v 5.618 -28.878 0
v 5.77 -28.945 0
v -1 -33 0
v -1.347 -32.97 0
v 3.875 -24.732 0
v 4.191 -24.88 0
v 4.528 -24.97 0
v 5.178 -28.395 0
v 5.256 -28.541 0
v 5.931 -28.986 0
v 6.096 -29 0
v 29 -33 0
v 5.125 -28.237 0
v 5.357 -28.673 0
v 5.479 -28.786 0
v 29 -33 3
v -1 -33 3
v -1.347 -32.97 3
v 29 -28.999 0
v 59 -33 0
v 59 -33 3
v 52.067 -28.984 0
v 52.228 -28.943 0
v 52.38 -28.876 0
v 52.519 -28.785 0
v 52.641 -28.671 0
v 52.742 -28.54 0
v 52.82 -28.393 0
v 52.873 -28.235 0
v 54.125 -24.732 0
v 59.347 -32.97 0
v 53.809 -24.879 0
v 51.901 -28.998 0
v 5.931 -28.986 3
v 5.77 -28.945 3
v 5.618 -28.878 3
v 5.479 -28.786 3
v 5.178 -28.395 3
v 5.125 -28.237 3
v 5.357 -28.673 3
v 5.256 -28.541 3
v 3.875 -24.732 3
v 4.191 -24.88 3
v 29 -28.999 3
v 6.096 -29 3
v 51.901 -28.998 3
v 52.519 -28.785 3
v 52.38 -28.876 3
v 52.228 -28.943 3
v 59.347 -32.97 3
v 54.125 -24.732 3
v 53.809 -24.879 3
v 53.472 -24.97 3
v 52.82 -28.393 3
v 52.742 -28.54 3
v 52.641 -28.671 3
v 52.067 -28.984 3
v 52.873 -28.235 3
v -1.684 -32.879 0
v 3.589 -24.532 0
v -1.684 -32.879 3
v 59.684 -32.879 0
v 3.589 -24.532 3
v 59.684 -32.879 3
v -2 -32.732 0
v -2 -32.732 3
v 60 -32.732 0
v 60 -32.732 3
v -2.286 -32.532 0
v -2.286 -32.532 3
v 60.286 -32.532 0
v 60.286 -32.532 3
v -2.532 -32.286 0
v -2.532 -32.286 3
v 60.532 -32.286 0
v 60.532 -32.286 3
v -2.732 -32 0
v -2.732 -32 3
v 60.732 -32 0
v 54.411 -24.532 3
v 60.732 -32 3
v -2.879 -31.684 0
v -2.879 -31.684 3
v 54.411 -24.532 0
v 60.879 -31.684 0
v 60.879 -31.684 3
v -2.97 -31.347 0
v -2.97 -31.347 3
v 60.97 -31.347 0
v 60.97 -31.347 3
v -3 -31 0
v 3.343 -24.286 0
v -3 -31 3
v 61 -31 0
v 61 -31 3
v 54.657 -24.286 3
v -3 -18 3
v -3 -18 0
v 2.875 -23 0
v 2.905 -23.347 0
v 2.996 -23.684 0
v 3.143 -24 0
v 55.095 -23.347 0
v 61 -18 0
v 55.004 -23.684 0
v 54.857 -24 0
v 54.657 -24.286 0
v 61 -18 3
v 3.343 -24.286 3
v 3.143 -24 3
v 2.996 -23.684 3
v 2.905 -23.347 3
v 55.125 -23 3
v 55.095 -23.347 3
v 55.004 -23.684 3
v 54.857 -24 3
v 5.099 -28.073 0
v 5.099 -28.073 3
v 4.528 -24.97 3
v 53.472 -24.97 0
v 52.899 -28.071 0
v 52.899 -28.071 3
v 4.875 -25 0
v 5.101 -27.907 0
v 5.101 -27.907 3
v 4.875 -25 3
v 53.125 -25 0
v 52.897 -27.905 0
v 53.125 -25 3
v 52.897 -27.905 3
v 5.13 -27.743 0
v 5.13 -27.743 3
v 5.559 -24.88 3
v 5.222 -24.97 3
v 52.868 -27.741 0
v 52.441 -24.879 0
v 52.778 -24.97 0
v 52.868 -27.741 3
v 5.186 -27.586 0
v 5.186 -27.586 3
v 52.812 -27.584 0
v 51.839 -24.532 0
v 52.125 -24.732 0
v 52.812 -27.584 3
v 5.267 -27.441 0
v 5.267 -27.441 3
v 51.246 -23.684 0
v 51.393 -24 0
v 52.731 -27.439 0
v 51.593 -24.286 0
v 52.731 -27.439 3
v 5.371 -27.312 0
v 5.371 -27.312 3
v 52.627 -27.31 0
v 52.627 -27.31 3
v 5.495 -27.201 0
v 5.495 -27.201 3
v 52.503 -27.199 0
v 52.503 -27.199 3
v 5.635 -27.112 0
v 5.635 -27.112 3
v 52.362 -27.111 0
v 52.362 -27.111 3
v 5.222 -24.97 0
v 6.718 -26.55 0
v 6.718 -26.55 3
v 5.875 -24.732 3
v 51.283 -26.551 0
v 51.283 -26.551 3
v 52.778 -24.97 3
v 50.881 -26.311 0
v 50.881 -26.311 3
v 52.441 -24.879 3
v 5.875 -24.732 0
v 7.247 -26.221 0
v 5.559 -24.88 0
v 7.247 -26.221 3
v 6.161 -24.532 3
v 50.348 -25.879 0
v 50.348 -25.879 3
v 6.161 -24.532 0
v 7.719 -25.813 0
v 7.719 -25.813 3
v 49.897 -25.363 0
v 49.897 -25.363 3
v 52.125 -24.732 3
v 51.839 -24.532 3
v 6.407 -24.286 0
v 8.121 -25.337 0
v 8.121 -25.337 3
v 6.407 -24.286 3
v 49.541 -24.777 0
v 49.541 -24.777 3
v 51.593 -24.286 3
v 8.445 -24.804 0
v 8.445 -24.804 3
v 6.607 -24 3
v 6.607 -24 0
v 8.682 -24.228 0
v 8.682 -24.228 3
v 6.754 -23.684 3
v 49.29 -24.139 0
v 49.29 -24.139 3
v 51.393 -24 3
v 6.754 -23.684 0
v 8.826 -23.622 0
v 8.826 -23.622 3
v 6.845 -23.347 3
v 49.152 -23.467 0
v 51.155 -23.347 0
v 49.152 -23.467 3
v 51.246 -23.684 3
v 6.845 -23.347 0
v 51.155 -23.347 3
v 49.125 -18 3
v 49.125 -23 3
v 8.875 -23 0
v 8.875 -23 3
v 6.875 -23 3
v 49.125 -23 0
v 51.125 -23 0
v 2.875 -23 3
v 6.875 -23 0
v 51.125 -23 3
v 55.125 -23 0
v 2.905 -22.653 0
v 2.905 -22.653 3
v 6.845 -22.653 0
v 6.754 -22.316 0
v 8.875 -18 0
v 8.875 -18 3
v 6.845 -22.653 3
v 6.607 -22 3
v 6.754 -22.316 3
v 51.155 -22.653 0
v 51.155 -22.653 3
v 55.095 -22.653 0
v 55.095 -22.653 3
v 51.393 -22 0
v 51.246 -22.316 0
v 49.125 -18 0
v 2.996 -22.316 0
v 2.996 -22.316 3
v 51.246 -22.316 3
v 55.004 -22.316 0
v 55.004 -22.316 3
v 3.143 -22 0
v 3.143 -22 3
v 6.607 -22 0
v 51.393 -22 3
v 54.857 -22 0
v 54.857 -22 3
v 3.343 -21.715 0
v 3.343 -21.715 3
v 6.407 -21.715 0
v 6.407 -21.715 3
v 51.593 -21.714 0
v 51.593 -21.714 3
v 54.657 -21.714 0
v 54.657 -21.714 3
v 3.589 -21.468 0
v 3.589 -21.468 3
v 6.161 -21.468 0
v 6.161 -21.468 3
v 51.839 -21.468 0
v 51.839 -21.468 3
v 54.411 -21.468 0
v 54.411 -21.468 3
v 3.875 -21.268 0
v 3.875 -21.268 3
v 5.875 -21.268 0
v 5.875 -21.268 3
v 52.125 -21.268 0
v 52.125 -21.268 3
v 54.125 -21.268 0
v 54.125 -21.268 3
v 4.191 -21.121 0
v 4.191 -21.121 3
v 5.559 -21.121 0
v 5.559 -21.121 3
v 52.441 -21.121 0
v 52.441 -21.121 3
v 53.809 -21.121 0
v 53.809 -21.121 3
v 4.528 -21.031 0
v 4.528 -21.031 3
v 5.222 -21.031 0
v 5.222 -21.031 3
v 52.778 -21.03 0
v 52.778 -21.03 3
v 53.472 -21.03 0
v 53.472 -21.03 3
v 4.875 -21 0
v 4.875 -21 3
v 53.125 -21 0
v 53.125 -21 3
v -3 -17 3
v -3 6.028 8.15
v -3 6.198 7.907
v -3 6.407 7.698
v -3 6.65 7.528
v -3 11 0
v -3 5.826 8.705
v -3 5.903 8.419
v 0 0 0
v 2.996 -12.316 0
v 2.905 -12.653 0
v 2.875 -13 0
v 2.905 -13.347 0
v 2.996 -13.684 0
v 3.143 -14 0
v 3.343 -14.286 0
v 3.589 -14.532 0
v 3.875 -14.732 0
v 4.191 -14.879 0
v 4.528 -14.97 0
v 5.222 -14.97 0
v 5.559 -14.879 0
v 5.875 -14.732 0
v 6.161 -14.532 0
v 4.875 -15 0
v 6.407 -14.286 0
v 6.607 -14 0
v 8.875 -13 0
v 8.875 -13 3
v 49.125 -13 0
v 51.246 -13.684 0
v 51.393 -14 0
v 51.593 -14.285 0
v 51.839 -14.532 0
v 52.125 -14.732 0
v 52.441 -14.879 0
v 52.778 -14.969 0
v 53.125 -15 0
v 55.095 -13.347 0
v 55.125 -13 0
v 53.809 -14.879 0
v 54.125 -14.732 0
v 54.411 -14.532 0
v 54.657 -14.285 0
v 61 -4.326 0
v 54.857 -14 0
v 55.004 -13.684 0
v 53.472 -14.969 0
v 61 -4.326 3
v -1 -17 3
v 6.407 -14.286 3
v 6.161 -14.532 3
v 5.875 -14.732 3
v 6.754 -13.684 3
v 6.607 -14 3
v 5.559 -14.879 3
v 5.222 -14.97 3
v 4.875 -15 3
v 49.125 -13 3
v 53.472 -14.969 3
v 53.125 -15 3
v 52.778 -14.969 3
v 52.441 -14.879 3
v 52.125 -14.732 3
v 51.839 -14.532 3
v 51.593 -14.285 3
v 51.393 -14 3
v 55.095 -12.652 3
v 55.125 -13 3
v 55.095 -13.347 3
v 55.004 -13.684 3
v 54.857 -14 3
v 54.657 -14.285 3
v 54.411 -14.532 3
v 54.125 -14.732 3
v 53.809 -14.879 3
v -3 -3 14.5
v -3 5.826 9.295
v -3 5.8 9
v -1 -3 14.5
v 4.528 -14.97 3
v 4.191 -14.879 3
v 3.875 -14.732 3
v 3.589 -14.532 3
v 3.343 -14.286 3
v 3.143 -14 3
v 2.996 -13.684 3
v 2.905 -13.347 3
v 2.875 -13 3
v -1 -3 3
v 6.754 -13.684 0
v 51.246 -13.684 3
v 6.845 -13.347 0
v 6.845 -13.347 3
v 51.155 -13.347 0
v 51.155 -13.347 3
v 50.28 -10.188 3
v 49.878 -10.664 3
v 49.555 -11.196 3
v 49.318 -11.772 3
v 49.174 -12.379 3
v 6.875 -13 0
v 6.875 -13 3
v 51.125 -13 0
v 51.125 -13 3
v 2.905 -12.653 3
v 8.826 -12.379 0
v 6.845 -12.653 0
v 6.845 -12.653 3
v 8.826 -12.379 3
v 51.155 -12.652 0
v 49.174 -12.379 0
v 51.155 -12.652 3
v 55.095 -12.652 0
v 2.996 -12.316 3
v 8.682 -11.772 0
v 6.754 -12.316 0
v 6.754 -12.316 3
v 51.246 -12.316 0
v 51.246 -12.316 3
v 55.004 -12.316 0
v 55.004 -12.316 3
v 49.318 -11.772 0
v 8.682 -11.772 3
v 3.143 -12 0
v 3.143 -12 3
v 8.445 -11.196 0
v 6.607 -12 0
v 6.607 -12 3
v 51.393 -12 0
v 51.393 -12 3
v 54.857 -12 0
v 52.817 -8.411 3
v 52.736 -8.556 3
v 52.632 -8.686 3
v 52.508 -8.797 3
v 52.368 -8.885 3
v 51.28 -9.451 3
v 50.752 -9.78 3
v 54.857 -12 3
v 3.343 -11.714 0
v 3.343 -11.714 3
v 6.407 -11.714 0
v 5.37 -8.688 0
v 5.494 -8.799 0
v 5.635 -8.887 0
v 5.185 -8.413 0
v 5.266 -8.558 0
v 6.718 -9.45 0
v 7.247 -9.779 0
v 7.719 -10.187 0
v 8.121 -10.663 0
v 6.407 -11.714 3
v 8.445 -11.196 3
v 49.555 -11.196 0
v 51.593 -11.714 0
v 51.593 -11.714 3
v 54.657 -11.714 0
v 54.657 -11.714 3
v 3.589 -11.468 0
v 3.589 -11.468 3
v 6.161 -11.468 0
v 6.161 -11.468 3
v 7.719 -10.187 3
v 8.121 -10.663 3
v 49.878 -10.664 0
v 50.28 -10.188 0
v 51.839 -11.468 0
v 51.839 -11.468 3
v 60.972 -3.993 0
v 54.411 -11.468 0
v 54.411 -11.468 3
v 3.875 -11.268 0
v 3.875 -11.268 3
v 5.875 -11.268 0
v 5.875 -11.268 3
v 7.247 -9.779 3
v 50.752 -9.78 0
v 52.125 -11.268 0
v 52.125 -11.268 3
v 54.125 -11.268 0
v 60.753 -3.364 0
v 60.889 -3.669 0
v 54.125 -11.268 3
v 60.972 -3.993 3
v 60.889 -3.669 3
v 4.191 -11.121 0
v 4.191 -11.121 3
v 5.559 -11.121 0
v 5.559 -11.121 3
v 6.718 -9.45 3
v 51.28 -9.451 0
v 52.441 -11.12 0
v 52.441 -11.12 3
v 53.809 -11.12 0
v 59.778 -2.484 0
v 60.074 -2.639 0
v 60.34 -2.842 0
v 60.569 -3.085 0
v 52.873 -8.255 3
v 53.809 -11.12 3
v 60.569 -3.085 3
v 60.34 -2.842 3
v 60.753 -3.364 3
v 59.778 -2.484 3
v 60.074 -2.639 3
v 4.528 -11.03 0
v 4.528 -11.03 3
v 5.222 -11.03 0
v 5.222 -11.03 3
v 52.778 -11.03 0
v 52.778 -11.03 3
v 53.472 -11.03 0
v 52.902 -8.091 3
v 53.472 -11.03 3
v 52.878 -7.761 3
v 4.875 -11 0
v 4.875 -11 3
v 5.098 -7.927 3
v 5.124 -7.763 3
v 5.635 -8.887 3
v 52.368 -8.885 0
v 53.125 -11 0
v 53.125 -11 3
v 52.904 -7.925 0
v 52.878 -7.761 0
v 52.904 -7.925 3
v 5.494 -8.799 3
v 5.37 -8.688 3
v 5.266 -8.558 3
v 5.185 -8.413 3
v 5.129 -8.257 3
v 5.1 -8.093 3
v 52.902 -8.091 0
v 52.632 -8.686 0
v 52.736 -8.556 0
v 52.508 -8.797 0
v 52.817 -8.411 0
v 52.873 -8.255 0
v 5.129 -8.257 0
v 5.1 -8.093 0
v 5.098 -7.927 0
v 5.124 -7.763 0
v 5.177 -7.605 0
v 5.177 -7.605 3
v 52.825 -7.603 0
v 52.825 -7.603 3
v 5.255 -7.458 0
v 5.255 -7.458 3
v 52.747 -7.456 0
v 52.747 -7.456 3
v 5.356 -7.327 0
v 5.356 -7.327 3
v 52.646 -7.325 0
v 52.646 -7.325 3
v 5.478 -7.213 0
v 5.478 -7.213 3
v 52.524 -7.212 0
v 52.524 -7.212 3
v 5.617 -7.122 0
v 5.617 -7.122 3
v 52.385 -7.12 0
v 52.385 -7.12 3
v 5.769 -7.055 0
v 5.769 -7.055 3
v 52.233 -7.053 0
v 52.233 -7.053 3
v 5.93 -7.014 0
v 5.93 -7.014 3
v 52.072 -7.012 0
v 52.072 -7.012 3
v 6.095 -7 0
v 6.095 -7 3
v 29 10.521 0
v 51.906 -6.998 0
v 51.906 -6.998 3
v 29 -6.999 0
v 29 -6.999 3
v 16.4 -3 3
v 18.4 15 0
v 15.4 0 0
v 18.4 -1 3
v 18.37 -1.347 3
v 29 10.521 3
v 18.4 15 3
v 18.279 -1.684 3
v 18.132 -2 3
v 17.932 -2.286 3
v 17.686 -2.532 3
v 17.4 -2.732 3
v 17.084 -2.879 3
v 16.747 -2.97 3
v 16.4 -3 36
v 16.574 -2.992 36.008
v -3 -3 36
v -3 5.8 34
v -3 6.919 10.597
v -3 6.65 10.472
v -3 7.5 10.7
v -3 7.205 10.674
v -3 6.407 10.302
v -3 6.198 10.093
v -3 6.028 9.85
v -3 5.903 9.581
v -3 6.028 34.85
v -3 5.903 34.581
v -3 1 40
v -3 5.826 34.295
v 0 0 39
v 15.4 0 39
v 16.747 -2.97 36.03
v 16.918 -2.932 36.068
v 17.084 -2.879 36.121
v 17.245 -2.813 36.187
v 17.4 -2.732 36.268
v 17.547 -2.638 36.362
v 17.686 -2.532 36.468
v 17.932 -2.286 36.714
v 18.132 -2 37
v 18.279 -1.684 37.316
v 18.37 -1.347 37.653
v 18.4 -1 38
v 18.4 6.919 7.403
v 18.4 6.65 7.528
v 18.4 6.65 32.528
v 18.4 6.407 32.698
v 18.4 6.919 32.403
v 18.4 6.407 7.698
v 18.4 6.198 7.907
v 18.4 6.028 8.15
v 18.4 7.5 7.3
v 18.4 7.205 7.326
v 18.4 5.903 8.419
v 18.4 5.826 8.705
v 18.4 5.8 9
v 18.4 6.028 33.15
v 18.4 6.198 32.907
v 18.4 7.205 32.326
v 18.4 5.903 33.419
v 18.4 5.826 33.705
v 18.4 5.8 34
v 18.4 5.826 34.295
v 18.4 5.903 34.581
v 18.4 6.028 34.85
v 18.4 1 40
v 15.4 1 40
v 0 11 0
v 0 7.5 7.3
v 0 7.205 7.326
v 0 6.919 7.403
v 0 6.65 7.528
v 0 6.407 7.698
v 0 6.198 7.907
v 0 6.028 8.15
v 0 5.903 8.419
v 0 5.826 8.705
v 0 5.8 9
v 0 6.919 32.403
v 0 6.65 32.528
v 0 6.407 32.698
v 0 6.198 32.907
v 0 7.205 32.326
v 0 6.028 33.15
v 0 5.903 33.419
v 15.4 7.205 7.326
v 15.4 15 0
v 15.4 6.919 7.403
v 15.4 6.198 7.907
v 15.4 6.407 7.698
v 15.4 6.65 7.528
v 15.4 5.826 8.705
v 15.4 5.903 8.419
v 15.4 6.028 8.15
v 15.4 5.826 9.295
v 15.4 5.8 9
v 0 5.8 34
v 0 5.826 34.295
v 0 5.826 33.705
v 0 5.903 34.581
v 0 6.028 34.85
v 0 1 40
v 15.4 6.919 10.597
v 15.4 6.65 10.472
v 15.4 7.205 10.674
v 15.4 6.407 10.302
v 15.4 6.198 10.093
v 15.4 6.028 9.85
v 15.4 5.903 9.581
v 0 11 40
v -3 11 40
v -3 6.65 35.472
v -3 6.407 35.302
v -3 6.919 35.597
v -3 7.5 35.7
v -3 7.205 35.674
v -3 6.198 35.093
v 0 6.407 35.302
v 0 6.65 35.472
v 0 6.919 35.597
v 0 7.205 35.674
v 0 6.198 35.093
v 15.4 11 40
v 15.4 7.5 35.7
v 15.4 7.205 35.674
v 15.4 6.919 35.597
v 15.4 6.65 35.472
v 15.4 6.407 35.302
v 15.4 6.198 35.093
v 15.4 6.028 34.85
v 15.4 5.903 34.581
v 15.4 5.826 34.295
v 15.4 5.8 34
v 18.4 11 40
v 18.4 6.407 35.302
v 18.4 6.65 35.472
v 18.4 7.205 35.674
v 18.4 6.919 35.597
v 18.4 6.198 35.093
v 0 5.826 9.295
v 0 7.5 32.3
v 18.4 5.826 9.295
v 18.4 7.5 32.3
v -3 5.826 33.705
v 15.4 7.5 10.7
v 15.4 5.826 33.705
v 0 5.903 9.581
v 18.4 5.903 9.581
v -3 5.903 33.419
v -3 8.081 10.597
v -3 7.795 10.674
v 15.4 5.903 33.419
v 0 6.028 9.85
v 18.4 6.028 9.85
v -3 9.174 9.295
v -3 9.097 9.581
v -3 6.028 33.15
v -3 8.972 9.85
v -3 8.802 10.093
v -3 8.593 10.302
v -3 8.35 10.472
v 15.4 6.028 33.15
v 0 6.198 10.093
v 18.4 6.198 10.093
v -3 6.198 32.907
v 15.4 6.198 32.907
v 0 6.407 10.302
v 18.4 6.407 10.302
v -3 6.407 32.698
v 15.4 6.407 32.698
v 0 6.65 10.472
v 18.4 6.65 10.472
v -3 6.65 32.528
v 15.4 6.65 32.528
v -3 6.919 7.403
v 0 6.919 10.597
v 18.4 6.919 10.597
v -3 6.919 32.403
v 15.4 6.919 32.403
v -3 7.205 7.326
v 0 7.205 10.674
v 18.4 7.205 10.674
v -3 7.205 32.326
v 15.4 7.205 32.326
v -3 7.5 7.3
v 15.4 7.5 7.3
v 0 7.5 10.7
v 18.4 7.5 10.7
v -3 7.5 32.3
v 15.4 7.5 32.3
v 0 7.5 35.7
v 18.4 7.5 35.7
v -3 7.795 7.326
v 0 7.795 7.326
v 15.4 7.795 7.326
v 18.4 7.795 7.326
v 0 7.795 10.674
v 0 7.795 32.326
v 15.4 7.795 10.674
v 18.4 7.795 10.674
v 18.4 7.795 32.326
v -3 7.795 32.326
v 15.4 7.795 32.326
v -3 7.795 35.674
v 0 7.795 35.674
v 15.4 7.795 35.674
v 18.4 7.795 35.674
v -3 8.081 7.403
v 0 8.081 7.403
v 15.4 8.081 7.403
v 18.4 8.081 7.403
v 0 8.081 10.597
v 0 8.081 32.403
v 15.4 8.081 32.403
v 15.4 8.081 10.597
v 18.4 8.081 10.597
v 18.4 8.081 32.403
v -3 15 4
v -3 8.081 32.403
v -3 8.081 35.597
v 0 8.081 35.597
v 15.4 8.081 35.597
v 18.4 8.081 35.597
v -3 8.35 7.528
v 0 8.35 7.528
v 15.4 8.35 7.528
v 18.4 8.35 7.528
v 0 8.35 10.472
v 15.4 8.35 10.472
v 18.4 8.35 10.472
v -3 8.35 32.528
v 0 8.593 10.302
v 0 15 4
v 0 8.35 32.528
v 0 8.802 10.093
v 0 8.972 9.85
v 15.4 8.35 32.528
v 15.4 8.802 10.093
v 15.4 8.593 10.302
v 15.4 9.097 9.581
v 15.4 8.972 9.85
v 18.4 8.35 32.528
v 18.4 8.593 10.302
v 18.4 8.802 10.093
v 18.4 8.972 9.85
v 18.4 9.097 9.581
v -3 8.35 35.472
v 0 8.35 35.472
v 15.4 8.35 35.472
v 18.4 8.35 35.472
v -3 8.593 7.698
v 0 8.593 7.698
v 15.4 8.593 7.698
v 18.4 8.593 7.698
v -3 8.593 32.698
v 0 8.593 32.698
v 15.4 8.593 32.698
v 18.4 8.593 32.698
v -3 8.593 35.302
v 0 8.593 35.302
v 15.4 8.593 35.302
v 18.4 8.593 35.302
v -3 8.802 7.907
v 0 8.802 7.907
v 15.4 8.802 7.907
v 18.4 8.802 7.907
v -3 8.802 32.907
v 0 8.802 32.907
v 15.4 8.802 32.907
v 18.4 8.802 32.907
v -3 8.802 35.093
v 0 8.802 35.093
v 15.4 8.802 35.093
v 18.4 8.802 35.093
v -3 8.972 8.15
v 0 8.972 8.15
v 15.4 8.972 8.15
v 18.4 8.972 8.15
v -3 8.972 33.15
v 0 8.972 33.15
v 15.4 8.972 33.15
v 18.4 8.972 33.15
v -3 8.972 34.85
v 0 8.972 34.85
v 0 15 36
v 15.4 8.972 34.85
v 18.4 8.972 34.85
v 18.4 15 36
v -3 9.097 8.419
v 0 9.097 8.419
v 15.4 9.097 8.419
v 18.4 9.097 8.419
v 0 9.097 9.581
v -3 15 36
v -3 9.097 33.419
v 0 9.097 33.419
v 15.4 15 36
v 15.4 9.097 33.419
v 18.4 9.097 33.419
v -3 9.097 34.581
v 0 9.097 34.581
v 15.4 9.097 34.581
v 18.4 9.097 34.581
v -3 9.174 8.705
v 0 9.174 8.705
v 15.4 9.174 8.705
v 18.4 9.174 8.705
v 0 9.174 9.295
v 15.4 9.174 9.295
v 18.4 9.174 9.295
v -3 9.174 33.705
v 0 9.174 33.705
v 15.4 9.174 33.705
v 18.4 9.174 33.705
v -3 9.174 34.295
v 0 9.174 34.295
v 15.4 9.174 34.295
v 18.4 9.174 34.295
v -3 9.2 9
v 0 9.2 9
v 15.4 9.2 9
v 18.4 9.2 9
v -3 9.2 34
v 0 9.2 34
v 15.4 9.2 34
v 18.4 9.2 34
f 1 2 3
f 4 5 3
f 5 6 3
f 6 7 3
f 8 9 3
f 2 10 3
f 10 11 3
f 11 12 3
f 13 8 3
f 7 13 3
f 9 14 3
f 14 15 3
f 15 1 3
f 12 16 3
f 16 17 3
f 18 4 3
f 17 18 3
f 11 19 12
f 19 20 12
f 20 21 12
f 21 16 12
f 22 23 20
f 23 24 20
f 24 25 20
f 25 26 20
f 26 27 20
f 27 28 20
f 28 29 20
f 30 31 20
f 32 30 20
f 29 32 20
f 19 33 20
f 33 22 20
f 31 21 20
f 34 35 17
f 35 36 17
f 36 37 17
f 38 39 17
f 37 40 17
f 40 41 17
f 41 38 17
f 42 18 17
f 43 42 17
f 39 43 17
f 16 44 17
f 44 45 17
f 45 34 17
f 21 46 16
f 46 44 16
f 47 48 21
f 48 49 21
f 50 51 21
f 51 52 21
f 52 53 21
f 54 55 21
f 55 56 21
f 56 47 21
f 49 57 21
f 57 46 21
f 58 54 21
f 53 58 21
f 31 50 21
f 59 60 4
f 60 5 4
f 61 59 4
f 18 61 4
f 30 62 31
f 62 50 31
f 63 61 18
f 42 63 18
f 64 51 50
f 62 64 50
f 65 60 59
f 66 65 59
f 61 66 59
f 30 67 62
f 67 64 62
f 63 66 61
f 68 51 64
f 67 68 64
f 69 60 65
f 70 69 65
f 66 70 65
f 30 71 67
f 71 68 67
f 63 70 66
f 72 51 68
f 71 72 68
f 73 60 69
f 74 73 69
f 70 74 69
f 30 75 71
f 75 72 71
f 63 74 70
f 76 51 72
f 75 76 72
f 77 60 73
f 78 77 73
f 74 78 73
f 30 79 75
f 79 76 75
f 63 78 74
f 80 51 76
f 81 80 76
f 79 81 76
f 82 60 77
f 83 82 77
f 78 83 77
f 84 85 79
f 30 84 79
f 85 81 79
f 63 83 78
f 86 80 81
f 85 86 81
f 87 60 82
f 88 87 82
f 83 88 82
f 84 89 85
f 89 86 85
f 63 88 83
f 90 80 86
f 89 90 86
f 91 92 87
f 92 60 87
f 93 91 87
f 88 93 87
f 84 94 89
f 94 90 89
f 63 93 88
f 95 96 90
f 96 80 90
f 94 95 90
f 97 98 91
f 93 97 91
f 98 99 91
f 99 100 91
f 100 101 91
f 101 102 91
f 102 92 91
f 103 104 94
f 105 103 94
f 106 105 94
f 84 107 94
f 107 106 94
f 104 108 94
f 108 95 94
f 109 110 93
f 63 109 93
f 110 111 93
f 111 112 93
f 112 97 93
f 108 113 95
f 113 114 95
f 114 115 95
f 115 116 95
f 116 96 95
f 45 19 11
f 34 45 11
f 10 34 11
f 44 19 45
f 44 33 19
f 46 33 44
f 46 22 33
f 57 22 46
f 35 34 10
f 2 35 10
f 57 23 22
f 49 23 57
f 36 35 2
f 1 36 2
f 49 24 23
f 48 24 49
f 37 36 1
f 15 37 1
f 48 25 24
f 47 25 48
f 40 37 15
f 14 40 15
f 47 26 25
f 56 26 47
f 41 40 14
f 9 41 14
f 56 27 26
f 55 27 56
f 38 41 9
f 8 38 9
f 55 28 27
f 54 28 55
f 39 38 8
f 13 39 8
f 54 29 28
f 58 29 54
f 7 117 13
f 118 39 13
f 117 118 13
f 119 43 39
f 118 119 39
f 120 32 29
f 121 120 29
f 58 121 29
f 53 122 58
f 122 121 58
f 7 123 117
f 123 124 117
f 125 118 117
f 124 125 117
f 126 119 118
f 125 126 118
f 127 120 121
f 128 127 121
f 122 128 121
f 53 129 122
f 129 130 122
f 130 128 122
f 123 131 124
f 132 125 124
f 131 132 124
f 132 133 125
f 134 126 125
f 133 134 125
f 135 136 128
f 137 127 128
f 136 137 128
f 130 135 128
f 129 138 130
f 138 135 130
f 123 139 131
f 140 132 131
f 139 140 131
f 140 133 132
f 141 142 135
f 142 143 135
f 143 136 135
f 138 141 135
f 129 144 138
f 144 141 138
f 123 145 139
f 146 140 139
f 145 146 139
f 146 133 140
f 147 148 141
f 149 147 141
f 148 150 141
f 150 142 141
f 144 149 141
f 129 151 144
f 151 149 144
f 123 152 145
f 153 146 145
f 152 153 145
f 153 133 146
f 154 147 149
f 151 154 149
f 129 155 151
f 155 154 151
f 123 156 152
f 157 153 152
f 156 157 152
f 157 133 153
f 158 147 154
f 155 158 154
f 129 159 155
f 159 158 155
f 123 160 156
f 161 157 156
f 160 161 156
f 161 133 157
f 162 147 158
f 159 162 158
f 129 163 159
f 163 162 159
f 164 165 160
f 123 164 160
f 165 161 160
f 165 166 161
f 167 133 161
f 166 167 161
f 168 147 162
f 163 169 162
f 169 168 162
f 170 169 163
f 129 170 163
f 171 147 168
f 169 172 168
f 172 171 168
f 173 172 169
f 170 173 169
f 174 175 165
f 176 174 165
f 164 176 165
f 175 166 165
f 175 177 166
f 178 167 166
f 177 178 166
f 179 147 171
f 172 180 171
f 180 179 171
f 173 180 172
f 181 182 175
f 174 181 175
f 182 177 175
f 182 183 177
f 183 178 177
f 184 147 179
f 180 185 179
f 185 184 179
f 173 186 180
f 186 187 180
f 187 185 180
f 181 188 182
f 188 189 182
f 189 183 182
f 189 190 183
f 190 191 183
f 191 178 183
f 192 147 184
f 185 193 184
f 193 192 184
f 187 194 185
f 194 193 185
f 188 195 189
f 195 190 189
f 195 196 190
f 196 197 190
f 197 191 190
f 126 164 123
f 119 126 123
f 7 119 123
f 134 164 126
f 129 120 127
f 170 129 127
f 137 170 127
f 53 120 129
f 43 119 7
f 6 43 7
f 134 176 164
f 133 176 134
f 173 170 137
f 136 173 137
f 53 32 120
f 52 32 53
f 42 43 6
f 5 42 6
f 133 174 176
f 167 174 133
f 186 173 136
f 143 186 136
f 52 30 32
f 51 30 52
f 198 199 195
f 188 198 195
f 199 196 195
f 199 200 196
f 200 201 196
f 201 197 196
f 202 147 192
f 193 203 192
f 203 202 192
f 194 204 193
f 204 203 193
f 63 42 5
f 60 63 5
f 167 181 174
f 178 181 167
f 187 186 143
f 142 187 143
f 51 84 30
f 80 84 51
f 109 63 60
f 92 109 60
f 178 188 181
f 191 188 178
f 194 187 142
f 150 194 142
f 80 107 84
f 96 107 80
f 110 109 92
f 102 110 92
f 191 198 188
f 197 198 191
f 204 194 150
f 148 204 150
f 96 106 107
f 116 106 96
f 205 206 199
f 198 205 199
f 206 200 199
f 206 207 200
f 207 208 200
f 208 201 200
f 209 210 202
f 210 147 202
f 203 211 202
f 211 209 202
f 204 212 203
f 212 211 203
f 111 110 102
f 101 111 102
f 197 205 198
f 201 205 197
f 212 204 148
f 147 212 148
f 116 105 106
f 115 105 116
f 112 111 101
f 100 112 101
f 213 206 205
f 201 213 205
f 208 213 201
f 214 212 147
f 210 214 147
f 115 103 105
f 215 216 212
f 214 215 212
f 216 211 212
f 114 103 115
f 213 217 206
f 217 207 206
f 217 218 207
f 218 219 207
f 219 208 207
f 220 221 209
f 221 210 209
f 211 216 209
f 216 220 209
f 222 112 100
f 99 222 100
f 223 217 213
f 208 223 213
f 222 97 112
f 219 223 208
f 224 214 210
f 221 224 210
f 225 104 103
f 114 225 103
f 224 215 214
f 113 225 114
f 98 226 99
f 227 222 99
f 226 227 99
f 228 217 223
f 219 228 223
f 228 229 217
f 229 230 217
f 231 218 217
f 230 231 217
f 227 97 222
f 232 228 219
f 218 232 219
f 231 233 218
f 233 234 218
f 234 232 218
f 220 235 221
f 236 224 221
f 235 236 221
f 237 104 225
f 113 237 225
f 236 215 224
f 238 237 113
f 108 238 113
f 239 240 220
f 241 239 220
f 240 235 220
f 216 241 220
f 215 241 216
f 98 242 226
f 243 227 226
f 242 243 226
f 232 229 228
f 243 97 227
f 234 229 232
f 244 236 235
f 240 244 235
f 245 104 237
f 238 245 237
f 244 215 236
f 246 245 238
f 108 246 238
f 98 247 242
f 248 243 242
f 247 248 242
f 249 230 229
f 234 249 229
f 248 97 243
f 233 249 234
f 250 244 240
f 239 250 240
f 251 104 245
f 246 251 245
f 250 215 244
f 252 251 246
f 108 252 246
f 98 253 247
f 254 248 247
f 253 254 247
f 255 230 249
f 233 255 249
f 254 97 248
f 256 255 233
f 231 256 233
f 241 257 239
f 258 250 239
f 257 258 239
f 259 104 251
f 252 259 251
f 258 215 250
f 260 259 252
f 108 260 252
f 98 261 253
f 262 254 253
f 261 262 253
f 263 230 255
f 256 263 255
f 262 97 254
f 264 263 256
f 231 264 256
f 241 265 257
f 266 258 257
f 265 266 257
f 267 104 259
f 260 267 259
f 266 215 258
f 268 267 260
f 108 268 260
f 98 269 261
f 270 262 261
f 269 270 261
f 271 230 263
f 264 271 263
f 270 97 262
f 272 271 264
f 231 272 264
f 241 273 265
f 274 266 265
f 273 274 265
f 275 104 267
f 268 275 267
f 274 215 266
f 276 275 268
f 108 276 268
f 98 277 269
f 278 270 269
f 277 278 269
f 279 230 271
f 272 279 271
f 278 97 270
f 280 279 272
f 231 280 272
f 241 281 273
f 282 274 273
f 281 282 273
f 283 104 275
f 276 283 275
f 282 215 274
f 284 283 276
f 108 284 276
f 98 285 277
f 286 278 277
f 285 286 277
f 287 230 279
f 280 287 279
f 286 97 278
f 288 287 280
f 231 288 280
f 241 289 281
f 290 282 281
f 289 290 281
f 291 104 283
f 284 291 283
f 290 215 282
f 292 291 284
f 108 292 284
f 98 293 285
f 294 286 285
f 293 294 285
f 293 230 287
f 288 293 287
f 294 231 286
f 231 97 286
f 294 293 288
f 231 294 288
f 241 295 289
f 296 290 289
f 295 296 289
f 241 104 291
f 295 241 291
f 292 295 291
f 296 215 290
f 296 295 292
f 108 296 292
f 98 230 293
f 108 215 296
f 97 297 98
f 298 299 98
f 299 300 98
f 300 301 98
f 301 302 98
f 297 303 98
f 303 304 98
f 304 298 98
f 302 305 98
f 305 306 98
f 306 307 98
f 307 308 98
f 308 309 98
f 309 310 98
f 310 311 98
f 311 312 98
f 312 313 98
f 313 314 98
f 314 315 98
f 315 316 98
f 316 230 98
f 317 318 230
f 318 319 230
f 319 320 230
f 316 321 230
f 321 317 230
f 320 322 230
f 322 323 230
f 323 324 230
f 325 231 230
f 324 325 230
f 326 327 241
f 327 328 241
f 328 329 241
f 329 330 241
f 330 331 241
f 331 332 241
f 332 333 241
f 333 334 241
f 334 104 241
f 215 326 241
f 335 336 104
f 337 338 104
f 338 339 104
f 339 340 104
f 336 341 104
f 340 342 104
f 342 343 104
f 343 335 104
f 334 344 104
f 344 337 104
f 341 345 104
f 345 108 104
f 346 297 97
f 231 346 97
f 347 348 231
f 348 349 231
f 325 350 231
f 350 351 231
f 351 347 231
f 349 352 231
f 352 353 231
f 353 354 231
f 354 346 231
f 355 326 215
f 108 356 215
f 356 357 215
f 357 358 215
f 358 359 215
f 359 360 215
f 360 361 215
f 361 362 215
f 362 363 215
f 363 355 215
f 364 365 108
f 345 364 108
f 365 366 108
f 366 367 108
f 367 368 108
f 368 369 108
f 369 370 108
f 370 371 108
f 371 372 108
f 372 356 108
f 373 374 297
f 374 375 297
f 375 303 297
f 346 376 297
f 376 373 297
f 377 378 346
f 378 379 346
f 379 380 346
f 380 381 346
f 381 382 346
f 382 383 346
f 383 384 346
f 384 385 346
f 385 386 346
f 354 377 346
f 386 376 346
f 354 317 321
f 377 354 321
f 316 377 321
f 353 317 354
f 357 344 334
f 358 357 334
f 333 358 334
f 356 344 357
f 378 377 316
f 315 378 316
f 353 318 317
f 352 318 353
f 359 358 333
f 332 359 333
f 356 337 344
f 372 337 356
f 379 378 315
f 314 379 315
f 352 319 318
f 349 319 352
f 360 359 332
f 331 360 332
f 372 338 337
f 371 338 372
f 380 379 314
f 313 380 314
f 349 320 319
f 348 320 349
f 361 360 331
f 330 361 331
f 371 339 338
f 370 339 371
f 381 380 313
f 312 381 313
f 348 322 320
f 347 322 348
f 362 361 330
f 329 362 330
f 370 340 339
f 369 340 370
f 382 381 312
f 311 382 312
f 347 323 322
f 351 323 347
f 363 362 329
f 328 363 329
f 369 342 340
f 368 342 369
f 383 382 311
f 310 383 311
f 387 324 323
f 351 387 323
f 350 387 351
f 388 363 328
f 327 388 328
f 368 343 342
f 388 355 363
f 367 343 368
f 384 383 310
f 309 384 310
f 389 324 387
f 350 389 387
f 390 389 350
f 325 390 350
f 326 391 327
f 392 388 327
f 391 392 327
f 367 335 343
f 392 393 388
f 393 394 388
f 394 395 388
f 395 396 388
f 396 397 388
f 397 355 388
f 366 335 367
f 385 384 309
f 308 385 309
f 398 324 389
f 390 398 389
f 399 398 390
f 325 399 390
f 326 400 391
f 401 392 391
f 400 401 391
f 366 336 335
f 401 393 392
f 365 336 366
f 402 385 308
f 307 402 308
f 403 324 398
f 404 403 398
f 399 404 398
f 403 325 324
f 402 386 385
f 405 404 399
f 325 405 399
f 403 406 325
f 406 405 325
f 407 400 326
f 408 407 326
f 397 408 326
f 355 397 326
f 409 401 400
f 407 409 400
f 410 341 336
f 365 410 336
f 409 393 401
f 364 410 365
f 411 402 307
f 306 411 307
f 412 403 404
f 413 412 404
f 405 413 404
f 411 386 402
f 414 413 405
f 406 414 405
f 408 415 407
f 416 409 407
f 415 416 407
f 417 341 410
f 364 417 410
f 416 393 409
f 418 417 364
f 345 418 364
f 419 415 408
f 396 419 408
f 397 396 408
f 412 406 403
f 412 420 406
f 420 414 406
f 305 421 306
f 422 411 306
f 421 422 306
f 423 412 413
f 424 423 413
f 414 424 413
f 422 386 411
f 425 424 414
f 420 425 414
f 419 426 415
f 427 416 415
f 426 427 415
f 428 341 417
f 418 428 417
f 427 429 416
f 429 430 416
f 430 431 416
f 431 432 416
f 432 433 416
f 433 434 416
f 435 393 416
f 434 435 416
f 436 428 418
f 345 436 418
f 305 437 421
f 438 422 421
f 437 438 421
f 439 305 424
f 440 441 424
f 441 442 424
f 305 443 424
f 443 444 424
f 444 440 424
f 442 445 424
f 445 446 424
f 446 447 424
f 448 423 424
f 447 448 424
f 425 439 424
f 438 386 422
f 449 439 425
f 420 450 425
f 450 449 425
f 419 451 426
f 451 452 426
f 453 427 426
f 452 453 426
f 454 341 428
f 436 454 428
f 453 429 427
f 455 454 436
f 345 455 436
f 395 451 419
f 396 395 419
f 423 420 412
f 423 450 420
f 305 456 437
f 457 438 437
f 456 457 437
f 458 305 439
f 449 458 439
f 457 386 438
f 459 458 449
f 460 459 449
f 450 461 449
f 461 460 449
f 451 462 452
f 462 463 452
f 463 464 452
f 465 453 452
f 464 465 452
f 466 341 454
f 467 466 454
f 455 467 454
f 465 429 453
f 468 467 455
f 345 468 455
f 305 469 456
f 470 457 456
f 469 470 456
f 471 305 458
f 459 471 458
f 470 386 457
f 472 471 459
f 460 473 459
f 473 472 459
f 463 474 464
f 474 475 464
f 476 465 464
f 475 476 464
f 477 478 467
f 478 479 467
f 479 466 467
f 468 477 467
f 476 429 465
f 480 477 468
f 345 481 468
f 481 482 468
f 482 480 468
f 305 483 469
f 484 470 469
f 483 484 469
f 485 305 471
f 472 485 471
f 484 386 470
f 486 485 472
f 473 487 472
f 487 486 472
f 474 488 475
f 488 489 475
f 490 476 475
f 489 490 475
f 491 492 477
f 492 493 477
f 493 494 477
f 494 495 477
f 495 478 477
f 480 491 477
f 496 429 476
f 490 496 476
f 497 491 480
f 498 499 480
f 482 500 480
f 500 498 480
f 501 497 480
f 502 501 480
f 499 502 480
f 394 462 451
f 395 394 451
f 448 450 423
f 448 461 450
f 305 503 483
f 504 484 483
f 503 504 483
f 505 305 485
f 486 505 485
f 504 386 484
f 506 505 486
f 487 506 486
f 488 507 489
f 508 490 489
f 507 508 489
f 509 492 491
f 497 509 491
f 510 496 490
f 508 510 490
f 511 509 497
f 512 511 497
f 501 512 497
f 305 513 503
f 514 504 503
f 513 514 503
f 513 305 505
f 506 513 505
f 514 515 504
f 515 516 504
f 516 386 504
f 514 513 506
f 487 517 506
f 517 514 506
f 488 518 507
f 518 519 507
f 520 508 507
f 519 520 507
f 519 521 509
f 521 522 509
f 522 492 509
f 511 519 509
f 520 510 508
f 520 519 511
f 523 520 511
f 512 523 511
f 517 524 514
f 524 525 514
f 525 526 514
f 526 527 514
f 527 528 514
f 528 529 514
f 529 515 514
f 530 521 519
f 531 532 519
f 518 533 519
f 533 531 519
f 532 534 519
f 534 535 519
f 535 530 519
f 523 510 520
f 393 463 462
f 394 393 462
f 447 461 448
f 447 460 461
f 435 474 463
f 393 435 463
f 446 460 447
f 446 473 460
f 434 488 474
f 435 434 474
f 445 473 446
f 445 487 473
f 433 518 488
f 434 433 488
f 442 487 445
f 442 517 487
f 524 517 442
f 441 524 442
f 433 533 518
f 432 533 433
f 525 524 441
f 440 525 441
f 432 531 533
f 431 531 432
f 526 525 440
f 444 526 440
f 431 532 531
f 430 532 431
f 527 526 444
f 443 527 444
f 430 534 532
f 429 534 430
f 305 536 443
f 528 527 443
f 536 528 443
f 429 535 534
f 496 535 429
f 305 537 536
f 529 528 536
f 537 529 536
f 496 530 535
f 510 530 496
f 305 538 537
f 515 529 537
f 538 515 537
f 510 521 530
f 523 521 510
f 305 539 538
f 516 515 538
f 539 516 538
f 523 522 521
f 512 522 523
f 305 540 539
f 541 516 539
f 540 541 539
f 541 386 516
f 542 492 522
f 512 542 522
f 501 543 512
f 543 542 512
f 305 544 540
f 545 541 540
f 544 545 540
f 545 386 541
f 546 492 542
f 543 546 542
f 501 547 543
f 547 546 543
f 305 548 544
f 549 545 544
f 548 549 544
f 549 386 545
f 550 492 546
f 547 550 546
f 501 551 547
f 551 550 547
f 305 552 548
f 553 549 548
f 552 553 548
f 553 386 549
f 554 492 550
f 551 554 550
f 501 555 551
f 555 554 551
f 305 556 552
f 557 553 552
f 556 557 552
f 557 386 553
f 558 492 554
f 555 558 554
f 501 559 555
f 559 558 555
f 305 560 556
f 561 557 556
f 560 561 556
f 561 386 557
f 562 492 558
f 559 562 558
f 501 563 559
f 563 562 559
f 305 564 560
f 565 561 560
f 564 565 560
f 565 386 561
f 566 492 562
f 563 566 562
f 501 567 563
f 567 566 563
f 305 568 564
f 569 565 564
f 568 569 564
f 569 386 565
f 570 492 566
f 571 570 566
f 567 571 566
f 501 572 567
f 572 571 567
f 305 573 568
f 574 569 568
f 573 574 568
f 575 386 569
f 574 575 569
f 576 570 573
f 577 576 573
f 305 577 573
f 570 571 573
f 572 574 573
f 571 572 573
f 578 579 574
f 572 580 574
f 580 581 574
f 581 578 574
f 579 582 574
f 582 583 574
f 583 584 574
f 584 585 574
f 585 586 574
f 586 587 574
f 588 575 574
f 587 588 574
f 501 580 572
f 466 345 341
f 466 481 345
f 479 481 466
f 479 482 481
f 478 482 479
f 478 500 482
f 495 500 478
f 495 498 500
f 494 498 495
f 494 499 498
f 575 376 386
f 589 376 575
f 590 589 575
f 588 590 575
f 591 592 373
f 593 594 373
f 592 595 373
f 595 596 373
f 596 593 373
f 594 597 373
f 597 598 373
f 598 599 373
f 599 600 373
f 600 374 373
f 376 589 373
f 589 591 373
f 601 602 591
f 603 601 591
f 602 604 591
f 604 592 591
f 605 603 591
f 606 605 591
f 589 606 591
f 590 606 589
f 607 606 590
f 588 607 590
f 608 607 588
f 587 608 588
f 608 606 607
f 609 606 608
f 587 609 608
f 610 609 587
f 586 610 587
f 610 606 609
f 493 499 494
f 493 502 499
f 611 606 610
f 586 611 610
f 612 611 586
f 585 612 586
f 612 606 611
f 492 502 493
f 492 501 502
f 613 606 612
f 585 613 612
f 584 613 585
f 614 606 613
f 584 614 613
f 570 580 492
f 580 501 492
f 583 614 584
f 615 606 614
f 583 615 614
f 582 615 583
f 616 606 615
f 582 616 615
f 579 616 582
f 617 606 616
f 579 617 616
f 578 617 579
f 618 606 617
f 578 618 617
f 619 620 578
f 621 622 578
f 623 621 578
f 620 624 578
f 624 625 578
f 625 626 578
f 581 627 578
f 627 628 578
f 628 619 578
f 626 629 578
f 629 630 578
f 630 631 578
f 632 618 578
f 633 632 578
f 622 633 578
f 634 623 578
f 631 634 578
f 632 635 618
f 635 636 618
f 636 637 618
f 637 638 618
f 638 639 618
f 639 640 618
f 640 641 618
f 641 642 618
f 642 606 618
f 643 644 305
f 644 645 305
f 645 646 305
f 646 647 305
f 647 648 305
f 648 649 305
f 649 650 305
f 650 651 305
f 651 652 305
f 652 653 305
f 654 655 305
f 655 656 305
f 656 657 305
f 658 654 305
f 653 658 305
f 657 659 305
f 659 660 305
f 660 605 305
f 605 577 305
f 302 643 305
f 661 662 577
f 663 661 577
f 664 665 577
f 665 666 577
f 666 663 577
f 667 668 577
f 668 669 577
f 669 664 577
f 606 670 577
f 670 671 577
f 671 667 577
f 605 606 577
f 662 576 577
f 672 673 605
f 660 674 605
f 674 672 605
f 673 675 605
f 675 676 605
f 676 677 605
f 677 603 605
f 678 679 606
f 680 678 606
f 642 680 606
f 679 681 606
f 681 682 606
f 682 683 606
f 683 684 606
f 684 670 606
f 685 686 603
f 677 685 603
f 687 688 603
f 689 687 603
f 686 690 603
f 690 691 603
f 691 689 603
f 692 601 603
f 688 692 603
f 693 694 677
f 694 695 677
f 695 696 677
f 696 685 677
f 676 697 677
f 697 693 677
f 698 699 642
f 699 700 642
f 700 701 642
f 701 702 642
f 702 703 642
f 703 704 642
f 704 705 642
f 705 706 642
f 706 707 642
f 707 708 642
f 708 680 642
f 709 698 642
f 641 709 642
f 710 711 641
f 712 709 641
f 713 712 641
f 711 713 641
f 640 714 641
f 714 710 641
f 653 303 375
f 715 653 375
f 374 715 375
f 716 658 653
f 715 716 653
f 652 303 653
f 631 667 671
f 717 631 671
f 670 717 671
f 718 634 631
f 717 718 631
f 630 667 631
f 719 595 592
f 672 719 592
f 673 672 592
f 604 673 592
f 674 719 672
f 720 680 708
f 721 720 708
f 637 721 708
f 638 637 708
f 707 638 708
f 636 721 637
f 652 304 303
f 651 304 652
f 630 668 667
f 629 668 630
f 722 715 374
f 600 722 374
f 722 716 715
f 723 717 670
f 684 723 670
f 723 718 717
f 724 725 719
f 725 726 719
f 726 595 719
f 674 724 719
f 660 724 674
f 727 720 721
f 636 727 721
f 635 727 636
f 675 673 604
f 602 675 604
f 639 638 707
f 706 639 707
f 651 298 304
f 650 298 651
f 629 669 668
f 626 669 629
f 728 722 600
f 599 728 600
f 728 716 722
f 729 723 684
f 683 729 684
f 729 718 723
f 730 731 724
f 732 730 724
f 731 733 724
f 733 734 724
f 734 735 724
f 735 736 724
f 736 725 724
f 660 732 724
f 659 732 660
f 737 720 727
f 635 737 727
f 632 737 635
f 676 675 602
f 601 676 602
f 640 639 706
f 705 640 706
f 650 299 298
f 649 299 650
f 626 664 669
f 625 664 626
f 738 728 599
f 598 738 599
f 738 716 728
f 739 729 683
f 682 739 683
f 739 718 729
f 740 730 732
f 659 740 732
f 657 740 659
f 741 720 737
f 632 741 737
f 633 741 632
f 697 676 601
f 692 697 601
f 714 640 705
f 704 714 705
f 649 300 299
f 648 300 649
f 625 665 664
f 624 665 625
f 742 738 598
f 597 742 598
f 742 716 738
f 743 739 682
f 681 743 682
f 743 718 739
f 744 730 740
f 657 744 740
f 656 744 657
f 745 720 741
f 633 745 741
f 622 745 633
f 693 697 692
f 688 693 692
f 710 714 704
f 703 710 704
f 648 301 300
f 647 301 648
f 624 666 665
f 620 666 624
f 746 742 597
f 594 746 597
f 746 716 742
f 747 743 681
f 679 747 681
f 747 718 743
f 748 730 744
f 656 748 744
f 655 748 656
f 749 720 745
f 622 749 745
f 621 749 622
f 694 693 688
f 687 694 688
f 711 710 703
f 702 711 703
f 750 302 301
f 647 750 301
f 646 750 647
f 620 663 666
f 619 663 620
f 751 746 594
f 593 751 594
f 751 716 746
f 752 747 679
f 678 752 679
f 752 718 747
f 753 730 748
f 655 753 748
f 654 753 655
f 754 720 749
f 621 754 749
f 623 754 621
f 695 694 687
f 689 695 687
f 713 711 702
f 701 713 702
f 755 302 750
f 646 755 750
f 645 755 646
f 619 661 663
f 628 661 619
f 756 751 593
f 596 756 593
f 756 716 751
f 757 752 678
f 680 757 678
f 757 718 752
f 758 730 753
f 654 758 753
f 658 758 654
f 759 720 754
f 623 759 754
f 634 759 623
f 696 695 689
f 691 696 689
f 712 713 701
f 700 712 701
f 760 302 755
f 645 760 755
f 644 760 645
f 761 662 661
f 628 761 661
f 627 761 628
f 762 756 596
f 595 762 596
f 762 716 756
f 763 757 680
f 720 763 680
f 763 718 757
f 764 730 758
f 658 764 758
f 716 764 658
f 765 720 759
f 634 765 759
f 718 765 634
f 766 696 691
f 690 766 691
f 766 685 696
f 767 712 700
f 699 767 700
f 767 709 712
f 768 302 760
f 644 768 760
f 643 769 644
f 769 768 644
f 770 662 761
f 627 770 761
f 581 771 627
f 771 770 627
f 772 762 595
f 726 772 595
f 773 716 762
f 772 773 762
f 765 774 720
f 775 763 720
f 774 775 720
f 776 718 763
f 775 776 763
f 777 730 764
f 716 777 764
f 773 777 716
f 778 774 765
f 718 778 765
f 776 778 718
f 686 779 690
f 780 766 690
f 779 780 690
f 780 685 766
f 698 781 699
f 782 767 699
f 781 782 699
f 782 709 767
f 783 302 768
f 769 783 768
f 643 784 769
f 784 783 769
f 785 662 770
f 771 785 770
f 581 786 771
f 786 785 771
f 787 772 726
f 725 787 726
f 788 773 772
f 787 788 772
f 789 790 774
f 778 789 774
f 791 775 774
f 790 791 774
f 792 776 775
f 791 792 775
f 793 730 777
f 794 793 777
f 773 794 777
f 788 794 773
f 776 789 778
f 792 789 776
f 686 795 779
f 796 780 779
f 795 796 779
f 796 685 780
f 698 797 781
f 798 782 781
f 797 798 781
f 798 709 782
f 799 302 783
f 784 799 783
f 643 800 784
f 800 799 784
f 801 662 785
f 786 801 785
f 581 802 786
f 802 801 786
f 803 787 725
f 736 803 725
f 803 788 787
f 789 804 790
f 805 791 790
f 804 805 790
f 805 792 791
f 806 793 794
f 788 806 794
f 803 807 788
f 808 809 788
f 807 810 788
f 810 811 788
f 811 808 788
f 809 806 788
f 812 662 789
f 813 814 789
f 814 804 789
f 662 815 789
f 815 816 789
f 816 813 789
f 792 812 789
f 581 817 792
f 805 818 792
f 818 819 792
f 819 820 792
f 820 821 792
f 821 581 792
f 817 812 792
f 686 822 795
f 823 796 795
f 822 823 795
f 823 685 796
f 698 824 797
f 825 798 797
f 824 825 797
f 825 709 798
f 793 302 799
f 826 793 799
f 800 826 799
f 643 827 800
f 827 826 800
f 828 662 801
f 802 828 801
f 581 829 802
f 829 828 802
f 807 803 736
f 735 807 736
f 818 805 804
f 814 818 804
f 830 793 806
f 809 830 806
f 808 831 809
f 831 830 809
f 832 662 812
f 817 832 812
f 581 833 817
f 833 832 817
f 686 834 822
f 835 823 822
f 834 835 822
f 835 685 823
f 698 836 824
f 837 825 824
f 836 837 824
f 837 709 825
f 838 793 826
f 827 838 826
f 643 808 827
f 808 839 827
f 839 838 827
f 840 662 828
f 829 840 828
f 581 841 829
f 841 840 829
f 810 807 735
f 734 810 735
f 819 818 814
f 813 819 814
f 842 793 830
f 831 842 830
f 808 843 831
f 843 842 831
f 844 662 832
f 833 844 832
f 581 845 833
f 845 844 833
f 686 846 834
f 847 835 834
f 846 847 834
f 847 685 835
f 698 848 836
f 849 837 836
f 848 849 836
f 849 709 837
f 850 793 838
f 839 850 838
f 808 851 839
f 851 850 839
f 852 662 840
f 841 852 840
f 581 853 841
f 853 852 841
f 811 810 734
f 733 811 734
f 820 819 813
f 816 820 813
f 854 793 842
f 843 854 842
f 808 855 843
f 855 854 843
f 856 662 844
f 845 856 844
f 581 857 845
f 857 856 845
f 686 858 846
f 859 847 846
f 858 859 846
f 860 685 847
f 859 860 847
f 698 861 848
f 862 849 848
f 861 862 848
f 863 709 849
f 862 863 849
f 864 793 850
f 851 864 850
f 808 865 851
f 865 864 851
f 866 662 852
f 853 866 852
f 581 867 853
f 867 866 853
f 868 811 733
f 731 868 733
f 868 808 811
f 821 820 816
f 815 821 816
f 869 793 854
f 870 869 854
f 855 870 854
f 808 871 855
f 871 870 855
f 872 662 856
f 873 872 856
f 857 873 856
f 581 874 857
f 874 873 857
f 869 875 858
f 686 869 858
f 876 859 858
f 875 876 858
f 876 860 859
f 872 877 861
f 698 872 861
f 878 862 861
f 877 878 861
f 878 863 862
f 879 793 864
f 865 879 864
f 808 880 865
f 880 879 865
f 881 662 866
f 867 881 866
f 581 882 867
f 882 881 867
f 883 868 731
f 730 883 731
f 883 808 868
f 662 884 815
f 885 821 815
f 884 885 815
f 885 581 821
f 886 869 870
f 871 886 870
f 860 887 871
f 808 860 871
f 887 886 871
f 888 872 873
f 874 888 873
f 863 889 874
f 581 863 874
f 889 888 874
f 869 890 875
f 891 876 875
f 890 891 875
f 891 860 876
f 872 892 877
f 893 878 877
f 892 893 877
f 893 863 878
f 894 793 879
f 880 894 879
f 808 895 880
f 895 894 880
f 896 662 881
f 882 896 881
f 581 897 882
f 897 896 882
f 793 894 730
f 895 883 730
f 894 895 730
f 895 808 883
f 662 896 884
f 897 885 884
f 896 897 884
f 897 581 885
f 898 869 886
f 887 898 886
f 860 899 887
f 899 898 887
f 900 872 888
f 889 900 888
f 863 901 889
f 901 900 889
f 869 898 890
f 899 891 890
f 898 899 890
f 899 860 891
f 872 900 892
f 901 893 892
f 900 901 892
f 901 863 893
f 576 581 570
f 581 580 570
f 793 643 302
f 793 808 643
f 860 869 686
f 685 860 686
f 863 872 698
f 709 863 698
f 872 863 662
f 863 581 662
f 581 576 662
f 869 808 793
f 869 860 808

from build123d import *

# Parameters (mm, degrees)
BOSS_EXTRUDE1_DEPTH     = 40
CUT_EXTRUDE1_DEPTH      = 20
CUT_EXTRUDE1_DEPTH_BACK = 20
SKETCH2_R               = 1.7
BOSS_EXTRUDE2_START     = -3
SKETCH4_W               = 64
SKETCH4_H               = 30
SKETCH4_R               = 2
BOSS_EXTRUDE2_DEPTH     = 3
FILLET1_R               = 1
BOSS_EXTRUDE3_START     = -3
BOSS_EXTRUDE3_DEPTH     = 3
FILLET2_R               = 2
BOSS_EXTRUDE4_START     = -2
BOSS_EXTRUDE4_DEPTH     = 2
CHAMFER1_SIZE           = 4
CHAMFER3_SIZE           = 4
FILLET3_R               = 2


with BuildPart() as part:
    # Sketch1 → Boss-Extrude1 (new body)
    with BuildSketch(Plane.XY):
        Polygon((-3, -3), (-3, 15), (0, 15), (0, 0), (15.4, 0), (15.4, 15), (18.4, 15), (18.4, -3), align=None)
    extrude(amount=BOSS_EXTRUDE1_DEPTH)

    # Sketch2 → Cut-Extrude1 (cut, two sides: drawn at the far end of the back side and taken through both)
    with BuildSketch(Plane(origin=(0, 0, 0), x_dir=(0, 0, -1), z_dir=(1, 0, 0)).offset(-CUT_EXTRUDE1_DEPTH_BACK)):
        with Locations(Location((-34, 7.5, 0), (0, 0, 180))):
            Circle(SKETCH2_R)
        with Locations(Location((-9, 7.5, 0), (0, 0, 180))):
            Circle(SKETCH2_R)
    extrude(amount=CUT_EXTRUDE1_DEPTH + CUT_EXTRUDE1_DEPTH_BACK, mode=Mode.SUBTRACT)

    # Sketch4 → Boss-Extrude2 (add)
    with BuildSketch(Plane(origin=(0, 0, 0), x_dir=(-1, 0, 0), z_dir=(0, 0, -1)).offset(BOSS_EXTRUDE2_START)):
        with Locations((-29, -18)):
            Rectangle(SKETCH4_W, SKETCH4_H)
        with Locations((-4.875030798, -23.000128049)):
            Circle(SKETCH4_R, mode=Mode.SUBTRACT)
        with Locations((-4.87501026, -12.999951056)):
            Circle(SKETCH4_R, mode=Mode.SUBTRACT)
        with Locations((-53.124974567, -23.00004902)):
            Circle(SKETCH4_R, mode=Mode.SUBTRACT)
        with Locations((-53.125010259, -12.999787804)):
            Circle(SKETCH4_R, mode=Mode.SUBTRACT)
        with BuildLine():
            Line((-1.999964331, -28.999999992), (-55.999999981, -28.997992053))
            Line((-55.999999981, -28.997992053), (-51.282852208, -26.550624356))
            ThreePointArc((-51.282852208, -26.550624356), (-49.706744703, -25.077476419), (-49.124974567, -23.00004902))
            Line((-49.124974567, -23.00004902), (-49.125010259, -12.999787804))
            ThreePointArc((-49.125010259, -12.999787804), (-49.706039872, -10.923579364), (-51.280331003, -9.450540216))
            Line((-51.280331003, -9.450540216), (-55.999146244, -6.99799207))
            Line((-55.999146244, -6.99799207), (-1.999146282, -7.000000007))
            Line((-1.999146282, -7.000000007), (-6.718065019, -9.449859627))
            ThreePointArc((-6.718065019, -9.449859627), (-8.293505472, -10.922960328), (-8.87501026, -12.999951056))
            Line((-8.87501026, -12.999951056), (-8.875030798, -23.000128049))
            ThreePointArc((-8.875030798, -23.000128049), (-8.293584076, -25.077023205), (-6.718284054, -26.550116421))
            Line((-6.718284054, -26.550116421), (-1.999964331, -28.999999992))
        make_face(mode=Mode.SUBTRACT)
    extrude(amount=BOSS_EXTRUDE2_DEPTH)

    # Fillet1
    fillet1_edges = [part.edges().sort_by_distance(p)[0] for p in [
        (55.999999981, -28.997992053, 1.5),
        (1.999964331, -28.999999992, 1.5),
        (1.999146282, -7.000000007, 1.5),
        (55.999146244, -6.99799207, 1.5),
    ]]
    fillet(fillet1_edges, radius=FILLET1_R)

    # Sketch6 → Boss-Extrude3 (add)
    with BuildSketch(Plane(origin=(0, 0, 0), x_dir=(-1, 0, 0), z_dir=(0, 0, -1)).offset(BOSS_EXTRUDE3_START)):
        Polygon((-18.4, 15), (-61, -3), (-18.4, -3), align=None)
    extrude(amount=BOSS_EXTRUDE3_DEPTH)

    # Fillet2
    fillet2_edges = [part.edges().sort_by_distance(p)[0] for p in [
        (61, -3, 1.5),
        (-3, -33, 1.5),
        (61, -33, 1.5),
    ]]
    fillet(fillet2_edges, radius=FILLET2_R)

    # Sketch7 → Boss-Extrude4 (add)
    with BuildSketch(Plane.ZY.offset(3).offset(BOSS_EXTRUDE4_START)):
        Polygon((3, -17), (14.5, -3), (3, -3), align=None)
    extrude(amount=BOSS_EXTRUDE4_DEPTH)

    # Chamfer1
    # the kernel refuses this chamfer: 4 mm, written as the material it takes off along each edge
    with BuildSketch(Plane(origin=(28.686731952, -3, 40), x_dir=(0, -0.027495876610586403, -0.9996219169112968), z_dir=(-1, 0, 0))) as chamfer1_piece_1:
        Polygon((CHAMFER1_SIZE * 0.999621916911, -CHAMFER1_SIZE * 0.0274958766106), (-CHAMFER1_SIZE * 0.0274958766106, -CHAMFER1_SIZE * 0.999621916911), (0, 0), align=None)
    extrude(amount=41.973463904, mode=Mode.SUBTRACT)

    # Chamfer3
    chamfer3_edges = [part.edges().sort_by_distance(p)[0] for p in [
        (-1.5, 15, 0),
        (16.9, 15, 40),
        (-1.5, 15, 40),
    ]]
    chamfer(chamfer3_edges, length=CHAMFER3_SIZE)

    # Fillet3
    fillet3_edges = [part.edges().sort_by_distance(p)[0] for p in [
        (18.4, -3, 19.5),
    ]]
    fillet(fillet3_edges, radius=FILLET3_R)


solid = part.part
